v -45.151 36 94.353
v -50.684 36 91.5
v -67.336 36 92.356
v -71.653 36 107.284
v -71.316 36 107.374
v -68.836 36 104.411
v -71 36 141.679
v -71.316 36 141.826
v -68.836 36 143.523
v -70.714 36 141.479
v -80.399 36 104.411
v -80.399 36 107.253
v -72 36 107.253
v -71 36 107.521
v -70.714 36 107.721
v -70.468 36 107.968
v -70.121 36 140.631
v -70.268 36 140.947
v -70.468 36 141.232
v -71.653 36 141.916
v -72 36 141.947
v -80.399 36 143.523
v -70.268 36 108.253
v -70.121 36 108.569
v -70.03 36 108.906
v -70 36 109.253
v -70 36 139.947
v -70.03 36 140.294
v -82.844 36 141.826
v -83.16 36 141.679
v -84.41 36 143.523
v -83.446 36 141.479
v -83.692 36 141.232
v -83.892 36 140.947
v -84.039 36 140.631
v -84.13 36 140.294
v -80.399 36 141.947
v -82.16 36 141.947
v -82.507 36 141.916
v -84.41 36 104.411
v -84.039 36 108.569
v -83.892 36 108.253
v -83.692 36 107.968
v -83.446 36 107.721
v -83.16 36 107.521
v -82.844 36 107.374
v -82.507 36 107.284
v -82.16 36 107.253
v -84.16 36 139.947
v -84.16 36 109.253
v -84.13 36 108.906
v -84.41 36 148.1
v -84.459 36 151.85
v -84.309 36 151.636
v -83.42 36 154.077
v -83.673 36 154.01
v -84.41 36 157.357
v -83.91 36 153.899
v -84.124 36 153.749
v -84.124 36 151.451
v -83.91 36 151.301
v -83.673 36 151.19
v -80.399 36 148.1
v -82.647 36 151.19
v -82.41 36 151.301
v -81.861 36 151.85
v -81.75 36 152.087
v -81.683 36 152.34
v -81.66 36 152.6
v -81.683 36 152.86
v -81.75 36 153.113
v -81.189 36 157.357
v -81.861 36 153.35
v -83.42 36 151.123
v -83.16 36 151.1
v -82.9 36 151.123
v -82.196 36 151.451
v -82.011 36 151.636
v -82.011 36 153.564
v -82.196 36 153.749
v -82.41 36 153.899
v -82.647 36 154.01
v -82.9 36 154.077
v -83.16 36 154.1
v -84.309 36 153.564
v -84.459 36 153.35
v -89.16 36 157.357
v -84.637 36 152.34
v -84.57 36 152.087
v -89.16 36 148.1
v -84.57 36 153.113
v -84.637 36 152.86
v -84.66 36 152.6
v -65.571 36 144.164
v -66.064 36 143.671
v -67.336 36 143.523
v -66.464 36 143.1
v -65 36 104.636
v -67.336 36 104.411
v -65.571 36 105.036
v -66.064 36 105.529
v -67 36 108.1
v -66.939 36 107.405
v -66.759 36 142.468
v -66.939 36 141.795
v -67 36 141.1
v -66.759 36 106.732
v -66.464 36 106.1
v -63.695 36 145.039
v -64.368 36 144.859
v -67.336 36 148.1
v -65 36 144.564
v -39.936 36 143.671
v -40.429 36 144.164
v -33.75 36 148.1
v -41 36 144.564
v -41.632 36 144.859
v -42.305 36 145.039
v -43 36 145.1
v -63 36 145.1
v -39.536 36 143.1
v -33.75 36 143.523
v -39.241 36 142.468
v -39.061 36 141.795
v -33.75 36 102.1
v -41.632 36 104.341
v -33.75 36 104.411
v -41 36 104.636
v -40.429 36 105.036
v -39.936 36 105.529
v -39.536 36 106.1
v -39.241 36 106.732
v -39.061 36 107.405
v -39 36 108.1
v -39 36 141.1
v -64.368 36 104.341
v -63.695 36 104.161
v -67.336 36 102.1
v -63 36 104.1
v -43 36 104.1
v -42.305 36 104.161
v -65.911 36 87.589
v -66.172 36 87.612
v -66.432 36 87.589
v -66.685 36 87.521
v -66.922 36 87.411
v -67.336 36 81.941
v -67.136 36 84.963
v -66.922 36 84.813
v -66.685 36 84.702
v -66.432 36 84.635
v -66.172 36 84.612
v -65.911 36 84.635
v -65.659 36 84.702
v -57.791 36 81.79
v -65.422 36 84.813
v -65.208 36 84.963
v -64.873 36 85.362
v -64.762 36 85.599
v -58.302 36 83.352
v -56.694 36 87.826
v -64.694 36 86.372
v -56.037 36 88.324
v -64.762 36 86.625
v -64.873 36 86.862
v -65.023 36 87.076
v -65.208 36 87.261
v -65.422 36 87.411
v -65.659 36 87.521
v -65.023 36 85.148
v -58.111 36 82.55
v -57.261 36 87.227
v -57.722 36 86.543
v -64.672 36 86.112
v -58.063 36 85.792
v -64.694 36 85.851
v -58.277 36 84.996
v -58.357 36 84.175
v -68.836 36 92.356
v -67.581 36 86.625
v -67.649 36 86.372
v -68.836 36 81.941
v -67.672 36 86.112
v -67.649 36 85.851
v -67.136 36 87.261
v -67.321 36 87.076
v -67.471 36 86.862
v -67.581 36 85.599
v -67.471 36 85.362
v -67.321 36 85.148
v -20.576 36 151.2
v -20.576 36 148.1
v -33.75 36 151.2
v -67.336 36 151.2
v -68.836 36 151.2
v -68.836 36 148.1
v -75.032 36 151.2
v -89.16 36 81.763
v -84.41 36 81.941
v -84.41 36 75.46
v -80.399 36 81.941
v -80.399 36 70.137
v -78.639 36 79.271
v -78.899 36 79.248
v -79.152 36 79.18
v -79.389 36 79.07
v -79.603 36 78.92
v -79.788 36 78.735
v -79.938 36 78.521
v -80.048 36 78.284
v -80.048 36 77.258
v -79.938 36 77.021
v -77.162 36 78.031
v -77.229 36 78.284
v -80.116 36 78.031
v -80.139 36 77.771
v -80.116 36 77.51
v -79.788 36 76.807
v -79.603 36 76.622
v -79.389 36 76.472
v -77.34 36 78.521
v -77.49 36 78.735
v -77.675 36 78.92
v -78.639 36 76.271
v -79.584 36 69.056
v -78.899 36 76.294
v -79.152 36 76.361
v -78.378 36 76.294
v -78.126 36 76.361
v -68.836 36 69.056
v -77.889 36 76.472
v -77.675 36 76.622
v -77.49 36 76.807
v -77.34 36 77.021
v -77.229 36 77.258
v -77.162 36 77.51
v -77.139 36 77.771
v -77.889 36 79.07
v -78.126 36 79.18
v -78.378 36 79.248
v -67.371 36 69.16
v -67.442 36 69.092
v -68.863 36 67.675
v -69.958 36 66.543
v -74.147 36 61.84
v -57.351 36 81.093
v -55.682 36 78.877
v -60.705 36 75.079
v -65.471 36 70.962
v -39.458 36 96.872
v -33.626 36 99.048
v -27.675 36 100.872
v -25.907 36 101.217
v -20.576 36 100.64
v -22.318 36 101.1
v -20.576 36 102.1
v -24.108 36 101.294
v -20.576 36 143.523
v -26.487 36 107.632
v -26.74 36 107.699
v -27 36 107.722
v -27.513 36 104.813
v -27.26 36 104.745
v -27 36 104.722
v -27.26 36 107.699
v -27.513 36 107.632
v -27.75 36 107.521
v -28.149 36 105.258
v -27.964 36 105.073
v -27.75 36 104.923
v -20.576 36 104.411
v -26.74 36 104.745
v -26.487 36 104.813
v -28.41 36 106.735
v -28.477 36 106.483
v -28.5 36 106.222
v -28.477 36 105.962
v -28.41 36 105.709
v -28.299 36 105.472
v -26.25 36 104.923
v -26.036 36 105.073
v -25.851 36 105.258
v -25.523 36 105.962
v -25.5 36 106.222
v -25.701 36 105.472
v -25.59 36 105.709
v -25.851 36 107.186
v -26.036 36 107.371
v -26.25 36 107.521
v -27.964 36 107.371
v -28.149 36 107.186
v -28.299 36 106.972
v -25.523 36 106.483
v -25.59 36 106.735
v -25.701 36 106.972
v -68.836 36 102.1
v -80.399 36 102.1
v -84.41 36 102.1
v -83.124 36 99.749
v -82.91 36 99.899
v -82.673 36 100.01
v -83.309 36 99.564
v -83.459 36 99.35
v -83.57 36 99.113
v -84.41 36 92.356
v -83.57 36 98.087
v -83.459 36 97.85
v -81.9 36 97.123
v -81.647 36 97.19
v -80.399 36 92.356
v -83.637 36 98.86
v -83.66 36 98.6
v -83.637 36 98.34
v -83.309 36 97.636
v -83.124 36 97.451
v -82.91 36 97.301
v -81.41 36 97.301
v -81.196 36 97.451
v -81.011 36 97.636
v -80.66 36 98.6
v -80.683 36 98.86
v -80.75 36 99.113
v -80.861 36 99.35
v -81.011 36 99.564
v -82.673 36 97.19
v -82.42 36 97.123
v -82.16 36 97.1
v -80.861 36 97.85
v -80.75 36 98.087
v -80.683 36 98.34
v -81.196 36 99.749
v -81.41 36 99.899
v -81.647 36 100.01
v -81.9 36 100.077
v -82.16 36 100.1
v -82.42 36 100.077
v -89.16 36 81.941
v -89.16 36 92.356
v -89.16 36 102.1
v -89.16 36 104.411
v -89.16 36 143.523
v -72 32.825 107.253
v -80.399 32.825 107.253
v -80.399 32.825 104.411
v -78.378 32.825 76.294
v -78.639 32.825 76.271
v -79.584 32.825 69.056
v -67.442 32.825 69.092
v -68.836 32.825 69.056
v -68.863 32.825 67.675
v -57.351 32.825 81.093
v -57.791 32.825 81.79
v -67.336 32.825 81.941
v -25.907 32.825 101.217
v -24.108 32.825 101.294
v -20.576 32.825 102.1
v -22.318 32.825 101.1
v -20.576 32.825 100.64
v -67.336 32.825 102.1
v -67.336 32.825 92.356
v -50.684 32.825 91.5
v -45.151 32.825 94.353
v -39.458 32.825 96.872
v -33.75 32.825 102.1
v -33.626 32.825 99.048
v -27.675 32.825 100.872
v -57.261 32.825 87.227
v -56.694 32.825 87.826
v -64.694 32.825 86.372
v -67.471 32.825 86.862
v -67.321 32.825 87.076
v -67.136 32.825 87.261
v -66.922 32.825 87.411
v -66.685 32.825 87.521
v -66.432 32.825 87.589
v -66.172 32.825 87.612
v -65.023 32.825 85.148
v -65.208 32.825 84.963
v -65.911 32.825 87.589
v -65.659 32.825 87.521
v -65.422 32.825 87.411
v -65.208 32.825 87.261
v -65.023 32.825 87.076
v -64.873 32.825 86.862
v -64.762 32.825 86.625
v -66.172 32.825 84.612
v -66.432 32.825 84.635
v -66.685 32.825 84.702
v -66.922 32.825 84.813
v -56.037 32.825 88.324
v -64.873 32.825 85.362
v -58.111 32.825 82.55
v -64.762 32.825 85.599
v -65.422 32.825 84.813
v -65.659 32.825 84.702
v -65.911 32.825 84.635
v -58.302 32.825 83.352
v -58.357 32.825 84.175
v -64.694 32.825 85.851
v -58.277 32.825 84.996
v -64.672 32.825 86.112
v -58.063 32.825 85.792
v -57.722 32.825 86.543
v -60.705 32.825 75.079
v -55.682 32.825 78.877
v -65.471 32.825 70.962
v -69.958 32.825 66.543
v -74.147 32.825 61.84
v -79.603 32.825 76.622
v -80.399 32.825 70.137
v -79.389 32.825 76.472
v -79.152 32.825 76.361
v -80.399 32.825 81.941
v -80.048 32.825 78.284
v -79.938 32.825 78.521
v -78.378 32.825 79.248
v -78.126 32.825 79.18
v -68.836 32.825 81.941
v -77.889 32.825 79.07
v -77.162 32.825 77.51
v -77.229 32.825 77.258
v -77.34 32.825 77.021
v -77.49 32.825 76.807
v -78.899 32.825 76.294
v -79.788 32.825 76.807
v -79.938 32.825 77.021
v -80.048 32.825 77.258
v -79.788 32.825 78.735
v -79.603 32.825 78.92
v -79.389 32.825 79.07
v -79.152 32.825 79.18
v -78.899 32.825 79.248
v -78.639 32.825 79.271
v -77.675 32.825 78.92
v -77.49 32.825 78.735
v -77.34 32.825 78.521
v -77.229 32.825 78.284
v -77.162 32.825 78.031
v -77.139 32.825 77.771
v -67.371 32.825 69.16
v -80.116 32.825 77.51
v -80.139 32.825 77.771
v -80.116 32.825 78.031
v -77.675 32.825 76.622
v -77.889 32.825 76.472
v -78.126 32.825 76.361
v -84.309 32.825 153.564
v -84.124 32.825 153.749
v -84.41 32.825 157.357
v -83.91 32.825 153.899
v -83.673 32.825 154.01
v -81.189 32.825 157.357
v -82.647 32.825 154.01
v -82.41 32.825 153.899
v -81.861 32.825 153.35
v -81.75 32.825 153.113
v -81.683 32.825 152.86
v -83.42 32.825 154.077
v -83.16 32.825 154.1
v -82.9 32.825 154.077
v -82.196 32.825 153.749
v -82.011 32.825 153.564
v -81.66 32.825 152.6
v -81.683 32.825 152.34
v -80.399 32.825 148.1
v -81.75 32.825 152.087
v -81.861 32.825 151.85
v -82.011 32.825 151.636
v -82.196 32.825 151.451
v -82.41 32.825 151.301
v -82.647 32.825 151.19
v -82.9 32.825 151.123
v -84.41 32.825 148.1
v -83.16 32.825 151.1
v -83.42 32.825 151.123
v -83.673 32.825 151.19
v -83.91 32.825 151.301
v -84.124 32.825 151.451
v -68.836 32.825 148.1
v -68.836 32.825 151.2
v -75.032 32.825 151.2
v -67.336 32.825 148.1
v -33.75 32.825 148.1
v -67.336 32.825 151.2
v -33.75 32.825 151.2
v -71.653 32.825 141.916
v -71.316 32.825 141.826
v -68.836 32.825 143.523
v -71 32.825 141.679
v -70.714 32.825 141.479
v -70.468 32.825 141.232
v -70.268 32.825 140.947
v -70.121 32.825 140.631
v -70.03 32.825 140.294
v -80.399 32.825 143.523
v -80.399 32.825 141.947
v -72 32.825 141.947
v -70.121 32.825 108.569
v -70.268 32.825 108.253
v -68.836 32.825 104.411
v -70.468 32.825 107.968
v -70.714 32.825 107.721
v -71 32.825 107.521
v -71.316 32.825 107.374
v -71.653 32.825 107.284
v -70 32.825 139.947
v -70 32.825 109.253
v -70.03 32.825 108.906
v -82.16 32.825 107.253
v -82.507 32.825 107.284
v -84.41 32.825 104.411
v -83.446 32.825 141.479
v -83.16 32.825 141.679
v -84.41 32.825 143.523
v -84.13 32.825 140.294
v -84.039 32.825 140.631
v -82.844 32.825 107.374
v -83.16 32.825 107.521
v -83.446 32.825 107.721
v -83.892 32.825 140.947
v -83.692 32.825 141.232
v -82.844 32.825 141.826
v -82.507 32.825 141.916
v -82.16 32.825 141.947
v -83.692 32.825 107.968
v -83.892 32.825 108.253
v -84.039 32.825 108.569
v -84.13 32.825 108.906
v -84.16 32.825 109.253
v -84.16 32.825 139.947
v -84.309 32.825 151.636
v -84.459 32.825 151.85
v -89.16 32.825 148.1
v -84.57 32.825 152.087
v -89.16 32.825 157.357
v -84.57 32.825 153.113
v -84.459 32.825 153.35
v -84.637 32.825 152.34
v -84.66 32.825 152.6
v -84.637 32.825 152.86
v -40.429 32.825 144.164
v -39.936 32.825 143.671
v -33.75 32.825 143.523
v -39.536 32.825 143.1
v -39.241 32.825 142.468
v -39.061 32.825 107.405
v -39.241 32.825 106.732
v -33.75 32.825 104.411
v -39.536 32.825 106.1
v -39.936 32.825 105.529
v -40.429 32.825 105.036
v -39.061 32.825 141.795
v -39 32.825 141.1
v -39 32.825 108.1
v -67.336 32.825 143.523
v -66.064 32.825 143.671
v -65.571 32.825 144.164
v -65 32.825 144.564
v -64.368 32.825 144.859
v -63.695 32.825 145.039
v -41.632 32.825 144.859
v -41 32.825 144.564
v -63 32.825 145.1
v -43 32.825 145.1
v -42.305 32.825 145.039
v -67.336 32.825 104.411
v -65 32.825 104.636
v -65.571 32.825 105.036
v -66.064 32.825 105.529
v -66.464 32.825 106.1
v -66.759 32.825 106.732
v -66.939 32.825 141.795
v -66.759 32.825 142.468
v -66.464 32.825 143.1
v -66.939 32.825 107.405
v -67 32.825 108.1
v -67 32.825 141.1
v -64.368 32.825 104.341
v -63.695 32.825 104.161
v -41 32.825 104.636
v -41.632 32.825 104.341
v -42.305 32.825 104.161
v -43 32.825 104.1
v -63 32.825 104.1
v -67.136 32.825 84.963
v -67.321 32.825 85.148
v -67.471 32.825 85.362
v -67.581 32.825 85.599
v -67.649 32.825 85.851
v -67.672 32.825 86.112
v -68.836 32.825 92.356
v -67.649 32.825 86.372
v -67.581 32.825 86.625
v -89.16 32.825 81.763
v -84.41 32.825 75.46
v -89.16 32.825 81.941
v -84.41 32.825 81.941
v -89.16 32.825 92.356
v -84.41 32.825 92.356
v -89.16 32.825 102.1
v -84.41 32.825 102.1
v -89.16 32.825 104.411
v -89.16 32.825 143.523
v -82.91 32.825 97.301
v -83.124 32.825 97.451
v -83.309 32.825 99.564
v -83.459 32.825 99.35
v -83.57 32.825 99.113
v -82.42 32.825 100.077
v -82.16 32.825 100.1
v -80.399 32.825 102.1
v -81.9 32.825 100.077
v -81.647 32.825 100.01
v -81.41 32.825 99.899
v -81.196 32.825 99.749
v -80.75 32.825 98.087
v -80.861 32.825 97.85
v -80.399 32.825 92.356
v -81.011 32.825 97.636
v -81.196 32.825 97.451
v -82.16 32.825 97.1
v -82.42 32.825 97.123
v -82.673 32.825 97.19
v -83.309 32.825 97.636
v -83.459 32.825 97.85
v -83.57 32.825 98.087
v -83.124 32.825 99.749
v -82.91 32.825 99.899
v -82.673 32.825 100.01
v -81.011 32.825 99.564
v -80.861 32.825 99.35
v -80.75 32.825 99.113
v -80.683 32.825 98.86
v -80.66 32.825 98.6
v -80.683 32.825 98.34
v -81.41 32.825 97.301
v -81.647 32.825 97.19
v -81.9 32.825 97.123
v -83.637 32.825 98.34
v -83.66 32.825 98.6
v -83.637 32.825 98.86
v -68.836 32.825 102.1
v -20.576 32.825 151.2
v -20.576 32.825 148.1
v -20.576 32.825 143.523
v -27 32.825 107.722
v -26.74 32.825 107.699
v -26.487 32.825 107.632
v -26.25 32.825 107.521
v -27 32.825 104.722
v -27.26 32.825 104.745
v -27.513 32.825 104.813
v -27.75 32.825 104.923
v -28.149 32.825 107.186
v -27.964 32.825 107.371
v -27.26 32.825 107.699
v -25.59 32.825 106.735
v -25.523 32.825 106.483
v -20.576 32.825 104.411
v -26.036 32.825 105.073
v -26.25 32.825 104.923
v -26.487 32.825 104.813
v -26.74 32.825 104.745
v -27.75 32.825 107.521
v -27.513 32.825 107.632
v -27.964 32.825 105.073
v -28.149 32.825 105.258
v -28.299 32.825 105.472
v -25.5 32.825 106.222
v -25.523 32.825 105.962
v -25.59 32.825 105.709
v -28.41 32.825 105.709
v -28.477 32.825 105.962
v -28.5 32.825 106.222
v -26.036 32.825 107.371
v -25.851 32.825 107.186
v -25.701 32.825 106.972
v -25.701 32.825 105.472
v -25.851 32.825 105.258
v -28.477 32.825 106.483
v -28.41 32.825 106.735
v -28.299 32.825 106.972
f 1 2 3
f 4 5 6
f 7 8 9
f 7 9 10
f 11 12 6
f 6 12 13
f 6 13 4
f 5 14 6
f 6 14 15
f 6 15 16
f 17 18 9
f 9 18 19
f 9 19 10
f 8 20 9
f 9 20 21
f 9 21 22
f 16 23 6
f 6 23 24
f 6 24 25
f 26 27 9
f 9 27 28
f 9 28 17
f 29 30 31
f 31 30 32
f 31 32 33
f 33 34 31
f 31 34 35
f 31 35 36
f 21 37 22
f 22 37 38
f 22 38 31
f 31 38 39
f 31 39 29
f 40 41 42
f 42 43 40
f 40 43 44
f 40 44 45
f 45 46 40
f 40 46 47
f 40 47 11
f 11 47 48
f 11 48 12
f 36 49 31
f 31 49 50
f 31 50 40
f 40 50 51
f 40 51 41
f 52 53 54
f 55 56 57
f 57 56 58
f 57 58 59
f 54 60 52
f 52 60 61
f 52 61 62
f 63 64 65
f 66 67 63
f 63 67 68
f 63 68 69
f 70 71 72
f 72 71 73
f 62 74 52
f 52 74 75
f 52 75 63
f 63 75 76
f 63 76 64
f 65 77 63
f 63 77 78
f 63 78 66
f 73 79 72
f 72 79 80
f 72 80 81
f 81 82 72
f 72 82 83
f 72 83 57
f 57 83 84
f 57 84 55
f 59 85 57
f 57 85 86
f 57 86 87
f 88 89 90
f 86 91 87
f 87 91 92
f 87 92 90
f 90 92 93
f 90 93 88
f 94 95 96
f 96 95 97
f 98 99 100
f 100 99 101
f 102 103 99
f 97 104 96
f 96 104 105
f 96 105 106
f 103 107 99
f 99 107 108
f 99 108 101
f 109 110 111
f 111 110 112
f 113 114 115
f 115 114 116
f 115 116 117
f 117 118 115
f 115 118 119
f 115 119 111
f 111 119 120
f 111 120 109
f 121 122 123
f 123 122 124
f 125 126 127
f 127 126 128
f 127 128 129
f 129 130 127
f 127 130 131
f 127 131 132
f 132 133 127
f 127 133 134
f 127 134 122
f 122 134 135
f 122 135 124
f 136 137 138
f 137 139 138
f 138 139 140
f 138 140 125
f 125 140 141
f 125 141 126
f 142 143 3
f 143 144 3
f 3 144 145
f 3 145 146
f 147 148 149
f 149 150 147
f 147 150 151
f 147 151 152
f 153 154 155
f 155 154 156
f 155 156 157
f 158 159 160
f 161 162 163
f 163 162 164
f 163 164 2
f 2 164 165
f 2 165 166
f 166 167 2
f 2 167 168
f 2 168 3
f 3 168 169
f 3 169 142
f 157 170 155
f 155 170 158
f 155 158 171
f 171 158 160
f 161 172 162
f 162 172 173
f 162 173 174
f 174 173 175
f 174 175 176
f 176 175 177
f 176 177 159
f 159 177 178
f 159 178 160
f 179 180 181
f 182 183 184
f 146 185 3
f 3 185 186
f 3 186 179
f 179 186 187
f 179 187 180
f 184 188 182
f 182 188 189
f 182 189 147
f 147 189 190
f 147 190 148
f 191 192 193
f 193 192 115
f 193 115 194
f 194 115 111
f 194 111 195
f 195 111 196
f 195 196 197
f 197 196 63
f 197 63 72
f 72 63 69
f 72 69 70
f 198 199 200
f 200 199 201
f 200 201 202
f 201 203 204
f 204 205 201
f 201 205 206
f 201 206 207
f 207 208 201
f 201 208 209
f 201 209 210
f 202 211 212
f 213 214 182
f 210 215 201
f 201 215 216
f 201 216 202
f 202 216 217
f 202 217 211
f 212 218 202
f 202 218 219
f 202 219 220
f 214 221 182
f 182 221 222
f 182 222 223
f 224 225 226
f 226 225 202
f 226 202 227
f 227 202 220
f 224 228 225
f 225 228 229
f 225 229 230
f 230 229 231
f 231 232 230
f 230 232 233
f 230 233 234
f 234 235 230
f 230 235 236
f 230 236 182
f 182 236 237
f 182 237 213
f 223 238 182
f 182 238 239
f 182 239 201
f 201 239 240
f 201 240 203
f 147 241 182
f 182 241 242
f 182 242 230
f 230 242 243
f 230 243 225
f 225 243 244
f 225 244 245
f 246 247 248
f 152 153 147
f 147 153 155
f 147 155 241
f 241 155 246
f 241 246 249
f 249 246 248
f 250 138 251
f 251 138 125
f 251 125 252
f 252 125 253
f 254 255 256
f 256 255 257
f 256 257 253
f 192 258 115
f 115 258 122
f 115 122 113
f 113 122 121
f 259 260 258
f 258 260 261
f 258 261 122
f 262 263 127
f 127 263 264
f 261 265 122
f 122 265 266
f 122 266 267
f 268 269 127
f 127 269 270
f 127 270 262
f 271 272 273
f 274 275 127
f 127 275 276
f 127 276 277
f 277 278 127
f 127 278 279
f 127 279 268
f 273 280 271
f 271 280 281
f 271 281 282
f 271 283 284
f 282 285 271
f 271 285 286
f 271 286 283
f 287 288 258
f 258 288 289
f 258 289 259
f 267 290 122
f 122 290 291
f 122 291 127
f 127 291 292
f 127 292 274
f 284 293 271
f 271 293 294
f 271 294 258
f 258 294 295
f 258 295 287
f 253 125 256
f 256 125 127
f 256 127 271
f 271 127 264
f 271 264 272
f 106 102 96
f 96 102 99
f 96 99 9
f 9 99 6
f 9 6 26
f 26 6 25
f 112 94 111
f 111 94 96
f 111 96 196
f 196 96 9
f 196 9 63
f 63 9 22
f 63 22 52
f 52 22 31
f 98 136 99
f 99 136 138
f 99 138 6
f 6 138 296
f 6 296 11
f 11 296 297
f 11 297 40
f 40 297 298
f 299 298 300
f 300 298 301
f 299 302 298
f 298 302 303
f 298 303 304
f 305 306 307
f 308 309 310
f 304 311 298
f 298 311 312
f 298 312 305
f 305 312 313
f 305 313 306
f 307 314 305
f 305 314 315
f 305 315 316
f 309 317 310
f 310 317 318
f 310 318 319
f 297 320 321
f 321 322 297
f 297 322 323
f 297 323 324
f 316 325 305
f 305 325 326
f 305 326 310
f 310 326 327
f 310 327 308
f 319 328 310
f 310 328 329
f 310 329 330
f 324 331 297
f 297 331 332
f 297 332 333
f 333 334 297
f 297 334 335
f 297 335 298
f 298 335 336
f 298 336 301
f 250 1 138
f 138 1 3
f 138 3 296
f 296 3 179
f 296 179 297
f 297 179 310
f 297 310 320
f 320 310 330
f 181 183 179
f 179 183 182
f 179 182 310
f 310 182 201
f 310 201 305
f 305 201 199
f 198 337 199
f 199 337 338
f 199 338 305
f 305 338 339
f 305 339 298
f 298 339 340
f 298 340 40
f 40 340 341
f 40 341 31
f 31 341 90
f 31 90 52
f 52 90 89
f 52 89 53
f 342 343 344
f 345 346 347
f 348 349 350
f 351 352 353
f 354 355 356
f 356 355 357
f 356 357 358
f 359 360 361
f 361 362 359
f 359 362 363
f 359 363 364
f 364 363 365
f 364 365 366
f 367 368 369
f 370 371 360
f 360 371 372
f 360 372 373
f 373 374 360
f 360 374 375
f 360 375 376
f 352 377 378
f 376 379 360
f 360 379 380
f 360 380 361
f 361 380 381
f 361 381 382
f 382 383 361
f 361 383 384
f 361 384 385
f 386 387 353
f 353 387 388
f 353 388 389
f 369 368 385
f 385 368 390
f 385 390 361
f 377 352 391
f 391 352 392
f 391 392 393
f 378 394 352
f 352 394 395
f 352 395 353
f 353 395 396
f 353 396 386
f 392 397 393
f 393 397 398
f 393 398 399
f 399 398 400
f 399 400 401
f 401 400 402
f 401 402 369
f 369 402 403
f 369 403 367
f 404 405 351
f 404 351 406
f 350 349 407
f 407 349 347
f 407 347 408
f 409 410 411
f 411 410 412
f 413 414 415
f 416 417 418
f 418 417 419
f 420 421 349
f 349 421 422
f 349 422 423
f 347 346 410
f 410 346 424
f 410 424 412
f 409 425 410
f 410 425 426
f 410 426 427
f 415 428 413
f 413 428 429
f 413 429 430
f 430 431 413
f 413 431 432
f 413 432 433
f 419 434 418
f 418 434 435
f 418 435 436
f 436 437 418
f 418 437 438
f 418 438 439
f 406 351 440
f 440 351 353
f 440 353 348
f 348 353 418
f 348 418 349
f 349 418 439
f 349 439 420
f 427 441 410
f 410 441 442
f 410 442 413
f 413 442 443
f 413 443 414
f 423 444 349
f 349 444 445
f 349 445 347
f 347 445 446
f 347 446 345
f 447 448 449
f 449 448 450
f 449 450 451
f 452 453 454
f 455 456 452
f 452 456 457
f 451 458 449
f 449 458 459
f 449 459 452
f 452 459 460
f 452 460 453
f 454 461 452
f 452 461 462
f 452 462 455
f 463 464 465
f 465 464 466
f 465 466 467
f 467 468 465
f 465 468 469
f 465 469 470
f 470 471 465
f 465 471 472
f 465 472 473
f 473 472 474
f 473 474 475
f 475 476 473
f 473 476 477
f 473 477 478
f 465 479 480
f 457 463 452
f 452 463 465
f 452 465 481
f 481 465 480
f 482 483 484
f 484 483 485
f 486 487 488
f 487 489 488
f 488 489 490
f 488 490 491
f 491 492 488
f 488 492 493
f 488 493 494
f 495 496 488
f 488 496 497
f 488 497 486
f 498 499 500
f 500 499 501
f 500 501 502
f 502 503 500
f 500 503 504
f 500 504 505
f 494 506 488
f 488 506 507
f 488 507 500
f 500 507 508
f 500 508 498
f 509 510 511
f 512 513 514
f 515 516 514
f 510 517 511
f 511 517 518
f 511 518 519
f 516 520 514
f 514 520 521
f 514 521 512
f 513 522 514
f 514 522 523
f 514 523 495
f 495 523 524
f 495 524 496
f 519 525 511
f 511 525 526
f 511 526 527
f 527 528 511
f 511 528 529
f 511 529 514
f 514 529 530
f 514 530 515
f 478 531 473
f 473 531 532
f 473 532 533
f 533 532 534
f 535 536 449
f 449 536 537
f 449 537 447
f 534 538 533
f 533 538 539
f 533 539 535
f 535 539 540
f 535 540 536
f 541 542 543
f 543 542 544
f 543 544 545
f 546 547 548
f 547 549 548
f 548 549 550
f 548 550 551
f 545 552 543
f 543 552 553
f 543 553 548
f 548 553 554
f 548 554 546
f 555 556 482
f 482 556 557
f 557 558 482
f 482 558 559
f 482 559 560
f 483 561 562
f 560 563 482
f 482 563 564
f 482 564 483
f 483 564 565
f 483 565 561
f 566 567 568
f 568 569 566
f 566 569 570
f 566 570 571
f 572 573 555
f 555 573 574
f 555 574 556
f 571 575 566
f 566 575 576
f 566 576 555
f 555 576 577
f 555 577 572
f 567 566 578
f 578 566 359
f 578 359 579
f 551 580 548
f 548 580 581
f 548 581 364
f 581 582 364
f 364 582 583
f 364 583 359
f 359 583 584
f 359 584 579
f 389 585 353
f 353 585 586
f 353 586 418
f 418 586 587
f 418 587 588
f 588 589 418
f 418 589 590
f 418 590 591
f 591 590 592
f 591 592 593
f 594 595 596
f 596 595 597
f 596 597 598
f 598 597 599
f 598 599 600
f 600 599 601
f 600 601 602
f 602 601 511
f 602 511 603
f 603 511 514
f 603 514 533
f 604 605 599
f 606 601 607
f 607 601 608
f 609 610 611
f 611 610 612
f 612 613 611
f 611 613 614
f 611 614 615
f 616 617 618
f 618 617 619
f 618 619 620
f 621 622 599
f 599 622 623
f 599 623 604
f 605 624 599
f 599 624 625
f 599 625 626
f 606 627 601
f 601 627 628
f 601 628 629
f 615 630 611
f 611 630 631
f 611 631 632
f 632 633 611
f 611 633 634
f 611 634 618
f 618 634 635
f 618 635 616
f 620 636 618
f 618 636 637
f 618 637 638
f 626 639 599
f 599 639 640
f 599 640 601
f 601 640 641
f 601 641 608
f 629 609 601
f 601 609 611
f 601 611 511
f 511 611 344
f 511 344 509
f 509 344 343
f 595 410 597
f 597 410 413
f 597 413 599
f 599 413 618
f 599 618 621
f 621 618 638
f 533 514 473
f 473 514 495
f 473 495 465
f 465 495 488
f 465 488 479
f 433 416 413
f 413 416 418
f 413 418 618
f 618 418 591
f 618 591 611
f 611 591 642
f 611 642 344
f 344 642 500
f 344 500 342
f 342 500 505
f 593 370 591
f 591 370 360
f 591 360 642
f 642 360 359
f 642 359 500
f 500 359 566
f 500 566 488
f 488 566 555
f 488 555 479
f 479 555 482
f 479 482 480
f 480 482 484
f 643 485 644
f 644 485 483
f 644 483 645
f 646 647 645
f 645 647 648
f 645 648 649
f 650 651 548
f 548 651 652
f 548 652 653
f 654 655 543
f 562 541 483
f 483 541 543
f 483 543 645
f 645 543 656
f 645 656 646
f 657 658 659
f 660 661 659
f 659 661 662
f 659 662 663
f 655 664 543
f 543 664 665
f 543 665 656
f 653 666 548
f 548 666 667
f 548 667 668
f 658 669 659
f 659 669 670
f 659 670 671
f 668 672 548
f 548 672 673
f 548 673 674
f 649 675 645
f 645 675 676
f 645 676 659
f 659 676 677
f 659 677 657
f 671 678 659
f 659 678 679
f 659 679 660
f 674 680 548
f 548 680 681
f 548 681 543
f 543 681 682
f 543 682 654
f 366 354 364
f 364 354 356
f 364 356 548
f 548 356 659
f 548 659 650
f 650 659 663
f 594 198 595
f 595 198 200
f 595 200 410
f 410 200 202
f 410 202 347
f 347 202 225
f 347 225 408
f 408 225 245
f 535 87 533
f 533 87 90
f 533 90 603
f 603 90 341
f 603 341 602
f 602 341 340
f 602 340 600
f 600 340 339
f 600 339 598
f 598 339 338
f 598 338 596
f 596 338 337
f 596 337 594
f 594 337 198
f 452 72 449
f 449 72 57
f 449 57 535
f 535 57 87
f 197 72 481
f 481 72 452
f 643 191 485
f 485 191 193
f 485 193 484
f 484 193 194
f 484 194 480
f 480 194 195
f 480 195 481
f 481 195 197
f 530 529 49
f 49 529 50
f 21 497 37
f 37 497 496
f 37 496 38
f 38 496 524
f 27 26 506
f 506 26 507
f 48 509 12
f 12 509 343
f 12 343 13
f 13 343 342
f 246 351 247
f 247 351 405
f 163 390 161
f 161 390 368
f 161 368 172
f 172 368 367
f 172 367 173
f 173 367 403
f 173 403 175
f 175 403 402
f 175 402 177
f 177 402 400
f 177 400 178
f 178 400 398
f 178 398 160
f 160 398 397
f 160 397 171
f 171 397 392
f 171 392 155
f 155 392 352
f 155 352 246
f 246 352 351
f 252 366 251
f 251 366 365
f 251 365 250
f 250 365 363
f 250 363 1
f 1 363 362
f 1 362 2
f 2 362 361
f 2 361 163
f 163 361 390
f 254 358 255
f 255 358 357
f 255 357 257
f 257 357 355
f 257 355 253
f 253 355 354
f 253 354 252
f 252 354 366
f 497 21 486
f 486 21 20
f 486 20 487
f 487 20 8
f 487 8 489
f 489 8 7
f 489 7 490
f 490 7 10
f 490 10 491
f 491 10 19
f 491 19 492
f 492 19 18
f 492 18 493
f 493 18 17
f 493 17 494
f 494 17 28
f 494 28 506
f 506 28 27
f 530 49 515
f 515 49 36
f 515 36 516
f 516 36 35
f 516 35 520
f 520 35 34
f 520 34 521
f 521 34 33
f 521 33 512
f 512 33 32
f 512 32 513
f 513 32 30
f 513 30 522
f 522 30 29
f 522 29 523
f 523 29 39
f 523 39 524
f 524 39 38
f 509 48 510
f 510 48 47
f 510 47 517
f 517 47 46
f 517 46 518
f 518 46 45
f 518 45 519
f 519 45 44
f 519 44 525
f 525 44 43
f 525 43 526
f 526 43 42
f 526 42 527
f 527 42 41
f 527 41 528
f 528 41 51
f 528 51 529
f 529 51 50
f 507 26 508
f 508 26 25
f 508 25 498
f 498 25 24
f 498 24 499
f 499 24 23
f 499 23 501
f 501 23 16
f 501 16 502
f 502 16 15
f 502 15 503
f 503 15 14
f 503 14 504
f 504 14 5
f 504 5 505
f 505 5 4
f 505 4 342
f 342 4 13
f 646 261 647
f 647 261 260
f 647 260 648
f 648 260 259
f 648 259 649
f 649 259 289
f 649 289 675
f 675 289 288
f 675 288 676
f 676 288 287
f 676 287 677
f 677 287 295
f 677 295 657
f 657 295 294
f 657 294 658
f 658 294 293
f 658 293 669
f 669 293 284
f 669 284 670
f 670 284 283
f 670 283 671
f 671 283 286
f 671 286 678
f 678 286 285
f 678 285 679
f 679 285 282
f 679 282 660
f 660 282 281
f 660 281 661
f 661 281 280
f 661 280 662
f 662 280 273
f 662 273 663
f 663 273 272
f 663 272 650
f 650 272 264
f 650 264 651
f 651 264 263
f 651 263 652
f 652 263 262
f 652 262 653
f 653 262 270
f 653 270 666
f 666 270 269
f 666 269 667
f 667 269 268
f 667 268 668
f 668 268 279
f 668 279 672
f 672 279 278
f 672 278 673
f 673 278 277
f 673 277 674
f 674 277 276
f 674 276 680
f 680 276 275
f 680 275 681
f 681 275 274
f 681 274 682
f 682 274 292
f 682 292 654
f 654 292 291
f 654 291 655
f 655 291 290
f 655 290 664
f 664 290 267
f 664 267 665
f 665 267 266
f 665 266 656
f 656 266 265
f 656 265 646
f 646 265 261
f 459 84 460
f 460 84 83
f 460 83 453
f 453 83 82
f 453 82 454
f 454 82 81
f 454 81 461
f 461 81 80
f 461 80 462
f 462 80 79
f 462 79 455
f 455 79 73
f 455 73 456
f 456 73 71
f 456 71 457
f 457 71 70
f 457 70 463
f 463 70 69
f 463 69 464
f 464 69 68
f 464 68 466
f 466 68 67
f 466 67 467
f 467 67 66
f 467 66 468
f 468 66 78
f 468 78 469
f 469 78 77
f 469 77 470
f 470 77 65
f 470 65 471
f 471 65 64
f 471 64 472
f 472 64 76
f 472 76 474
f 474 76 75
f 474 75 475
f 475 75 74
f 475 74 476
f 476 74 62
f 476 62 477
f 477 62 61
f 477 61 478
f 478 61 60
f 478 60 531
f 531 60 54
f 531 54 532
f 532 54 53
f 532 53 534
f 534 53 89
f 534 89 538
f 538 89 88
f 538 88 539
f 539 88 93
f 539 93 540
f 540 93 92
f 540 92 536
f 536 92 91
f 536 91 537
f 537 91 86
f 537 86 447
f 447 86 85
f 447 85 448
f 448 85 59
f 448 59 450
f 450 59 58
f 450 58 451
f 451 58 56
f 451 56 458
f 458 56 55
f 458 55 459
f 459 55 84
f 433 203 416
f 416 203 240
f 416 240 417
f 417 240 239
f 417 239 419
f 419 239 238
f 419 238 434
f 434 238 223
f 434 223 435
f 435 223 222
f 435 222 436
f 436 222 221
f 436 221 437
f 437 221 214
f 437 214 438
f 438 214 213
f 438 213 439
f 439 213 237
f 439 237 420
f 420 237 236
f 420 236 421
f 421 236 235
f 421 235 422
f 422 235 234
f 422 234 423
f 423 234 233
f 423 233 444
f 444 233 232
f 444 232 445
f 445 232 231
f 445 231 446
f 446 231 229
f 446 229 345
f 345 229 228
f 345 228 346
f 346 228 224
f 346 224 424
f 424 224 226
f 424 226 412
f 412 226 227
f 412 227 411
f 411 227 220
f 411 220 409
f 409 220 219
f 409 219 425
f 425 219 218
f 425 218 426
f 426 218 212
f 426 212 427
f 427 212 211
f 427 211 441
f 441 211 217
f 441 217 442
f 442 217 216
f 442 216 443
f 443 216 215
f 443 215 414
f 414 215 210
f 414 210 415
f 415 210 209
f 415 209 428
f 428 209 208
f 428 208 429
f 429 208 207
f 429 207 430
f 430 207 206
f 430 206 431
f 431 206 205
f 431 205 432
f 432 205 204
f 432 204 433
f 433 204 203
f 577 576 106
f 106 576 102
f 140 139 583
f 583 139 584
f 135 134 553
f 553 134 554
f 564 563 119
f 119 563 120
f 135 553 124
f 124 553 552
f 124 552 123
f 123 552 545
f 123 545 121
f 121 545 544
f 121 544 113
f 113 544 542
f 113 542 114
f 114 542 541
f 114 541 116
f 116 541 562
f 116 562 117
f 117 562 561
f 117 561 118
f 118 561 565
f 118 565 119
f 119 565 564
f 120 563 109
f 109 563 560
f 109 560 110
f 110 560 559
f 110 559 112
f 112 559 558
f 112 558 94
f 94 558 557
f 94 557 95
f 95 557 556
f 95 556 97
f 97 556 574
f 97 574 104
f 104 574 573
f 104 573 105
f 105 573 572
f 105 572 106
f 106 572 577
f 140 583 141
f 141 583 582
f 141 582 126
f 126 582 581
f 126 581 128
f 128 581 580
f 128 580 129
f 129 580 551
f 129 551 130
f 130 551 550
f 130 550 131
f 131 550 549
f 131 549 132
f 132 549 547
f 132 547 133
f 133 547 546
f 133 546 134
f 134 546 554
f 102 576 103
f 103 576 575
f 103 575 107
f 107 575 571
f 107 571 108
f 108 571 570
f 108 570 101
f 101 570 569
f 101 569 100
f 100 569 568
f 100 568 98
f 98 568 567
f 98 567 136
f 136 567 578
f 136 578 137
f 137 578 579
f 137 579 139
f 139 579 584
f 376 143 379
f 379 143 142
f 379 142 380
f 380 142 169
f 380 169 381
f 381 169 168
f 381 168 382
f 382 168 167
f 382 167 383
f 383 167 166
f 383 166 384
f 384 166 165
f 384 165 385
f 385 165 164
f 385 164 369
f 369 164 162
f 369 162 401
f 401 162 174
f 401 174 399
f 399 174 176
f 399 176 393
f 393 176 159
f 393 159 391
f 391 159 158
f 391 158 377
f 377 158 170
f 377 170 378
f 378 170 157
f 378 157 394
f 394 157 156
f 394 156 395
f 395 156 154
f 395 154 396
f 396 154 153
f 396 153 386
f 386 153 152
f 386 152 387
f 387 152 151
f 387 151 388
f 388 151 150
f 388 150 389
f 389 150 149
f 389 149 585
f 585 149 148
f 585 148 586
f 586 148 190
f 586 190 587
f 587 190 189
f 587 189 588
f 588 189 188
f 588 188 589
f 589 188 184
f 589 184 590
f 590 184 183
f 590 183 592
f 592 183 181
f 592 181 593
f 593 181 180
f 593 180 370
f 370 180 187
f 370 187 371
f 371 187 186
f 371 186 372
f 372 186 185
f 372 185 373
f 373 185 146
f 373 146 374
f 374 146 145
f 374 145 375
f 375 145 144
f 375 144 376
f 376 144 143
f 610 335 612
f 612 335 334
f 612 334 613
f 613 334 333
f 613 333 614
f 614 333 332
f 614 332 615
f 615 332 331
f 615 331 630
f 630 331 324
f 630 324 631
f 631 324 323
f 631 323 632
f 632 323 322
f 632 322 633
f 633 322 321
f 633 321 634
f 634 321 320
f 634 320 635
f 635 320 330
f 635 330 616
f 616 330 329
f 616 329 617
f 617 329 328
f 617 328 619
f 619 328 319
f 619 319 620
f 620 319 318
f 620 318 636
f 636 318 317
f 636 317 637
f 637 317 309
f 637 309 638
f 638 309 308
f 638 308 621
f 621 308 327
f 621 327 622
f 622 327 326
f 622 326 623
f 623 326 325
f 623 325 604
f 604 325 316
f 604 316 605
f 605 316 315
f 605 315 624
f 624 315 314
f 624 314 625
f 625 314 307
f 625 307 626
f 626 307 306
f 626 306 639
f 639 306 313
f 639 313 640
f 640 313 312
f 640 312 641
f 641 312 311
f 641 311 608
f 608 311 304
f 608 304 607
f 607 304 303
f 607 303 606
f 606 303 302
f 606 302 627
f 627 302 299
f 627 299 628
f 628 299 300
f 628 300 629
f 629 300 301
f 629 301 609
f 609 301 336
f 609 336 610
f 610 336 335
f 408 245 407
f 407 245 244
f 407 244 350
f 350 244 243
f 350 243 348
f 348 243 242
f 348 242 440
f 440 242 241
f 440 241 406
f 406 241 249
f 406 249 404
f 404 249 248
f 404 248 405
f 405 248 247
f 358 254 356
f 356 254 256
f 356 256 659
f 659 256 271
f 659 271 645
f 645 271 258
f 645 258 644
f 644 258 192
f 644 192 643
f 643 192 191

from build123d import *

# Parameters (mm, degrees)
SKETCH1_R                    = 7
SKETCH1_R_2                  = 3.9
SKETCH1_R_3                  = 1.3
SKETCH1_W                    = 14.16
SKETCH1_H                    = 34.693281024
BOSS_EXTRUDE1_DEPTH          = 3.175
FILLET1_R                    = 2
SKETCH2_R                    = 1.5
CUT_EXTRUDE1_DEPTH           = 4.175
SKETCH5_W                    = 28
SKETCH5_H                    = 41
CUT_EXTRUDE3_DEPTH           = 4.175
FILLET2_R                    = 4
SKETCH10_R                   = 1.5
NOSE_GUARD_SCREW_HOLES_DEPTH = 4.175
SKETCH11_R                   = 20
CUT_EXTRUDE4_DEPTH           = 4.175
SKETCH12_R                   = 1.5
CUT_EXTRUDE5_DEPTH           = 4.175
SKETCH13_R                   = 96.550525729
CUT_EXTRUDE6_DEPTH           = 4.175
SKETCH14_W                   = 292.522671741
SKETCH14_H                   = 256.088396318
CUT_EXTRUDE7_DEPTH           = 4.175


with BuildPart() as part:
    # Sketch1 → Boss-Extrude1 (new body)
    with BuildSketch(Plane(origin=(0, 32.825, 0), x_dir=(1, 0, 0), z_dir=(0, 1, 0))):
        with BuildLine():
            Line((89.16, -81.763233191), (17.569981221, 13.239930509))
            ThreePointArc((17.569981221, 13.239930509), (0, 22), (-17.569981221, 13.239930509))
            Line((-17.569981221, 13.239930509), (-89.16, -81.763233191))
            Line((-89.16, -81.763233191), (-89.16, -157.357359313))
            Line((-89.16, -157.357359313), (-81.189437252, -157.357359313))
            Line((-81.189437252, -157.357359313), (-75.032077939, -151.2))
            Line((-75.032077939, -151.2), (75.032077939, -151.2))
            Line((75.032077939, -151.2), (81.189437252, -157.357359313))
            Line((81.189437252, -157.357359313), (89.16, -157.357359313))
            Line((89.16, -157.357359313), (89.16, -81.763233191))
        make_face()
        with Locations((0, -124.6)):
            Circle(SKETCH1_R, mode=Mode.SUBTRACT)
        Circle(SKETCH1_R_2, mode=Mode.SUBTRACT)
        with Locations((0, -28)):
            Circle(SKETCH1_R_3, mode=Mode.SUBTRACT)
        with Locations((-77.08, -124.6)):
            Rectangle(SKETCH1_W, SKETCH1_H, mode=Mode.SUBTRACT)
        with Locations((77.08, -124.6)):
            Rectangle(SKETCH1_W, SKETCH1_H, mode=Mode.SUBTRACT)
        with BuildLine():
            Line((-21.49317755, -33.507330392), (-57.351202685, -81.09253696))
            ThreePointArc((-57.351202685, -81.09253696), (-58.277395442, -84.995925096), (-56.036640854, -88.323580553))
            ThreePointArc((-56.036640854, -88.323580553), (-42.323470644, -95.65502513), (-27.674946004, -100.872480705))
            ThreePointArc((-27.674946004, -100.872480705), (-17.223302674, -98.842107372), (-12.5, -89.300111982))
            Line((-12.5, -89.300111982), (-12.5, -36.516405507))
            ThreePointArc((-12.5, -36.516405507), (-15.913476718, -31.774787231), (-21.49317755, -33.507330392))
        make_face(mode=Mode.SUBTRACT)
        with BuildLine():
            Line((57.351202685, -81.09253696), (21.49317755, -33.507330392))
            ThreePointArc((21.49317755, -33.507330392), (15.913476718, -31.774787231), (12.5, -36.516405507))
            Line((12.5, -36.516405507), (12.5, -89.300111982))
            ThreePointArc((12.5, -89.300111982), (17.223302674, -98.842107372), (27.674946004, -100.872480705))
            ThreePointArc((27.674946004, -100.872480705), (42.323470644, -95.65502513), (56.036640854, -88.323580553))
            ThreePointArc((56.036640854, -88.323580553), (58.277395442, -84.995925096), (57.351202685, -81.09253696))
        make_face(mode=Mode.SUBTRACT)
    extrude(amount=BOSS_EXTRUDE1_DEPTH)

    # Fillet1
    fillet1_edges = [part.edges().sort_by_distance(p)[0] for p in [
        (-84.16, 34.4125, 107.253359488),
        (-84.16, 34.4125, 141.946640512),
        (-70, 34.4125, 141.946640512),
        (-70, 34.4125, 107.253359488),
        (84.16, 34.4125, 107.253359488),
        (70, 34.4125, 107.253359488),
        (70, 34.4125, 141.946640512),
        (84.16, 34.4125, 141.946640512),
    ]]
    fillet(fillet1_edges, radius=FILLET1_R)

    # Sketch2 → Cut-Extrude1 (cut, through all)
    with BuildSketch(Plane(origin=(0, 36, 0), x_dir=(1, 0, 0), z_dir=(0, 1, 0))):
        with Locations((-62.088932188, -184.6)):
            Circle(SKETCH2_R)
        with Locations((-27, -106.222219898)):
            Circle(SKETCH2_R)
        with Locations((-83.16, -152.6)):
            Circle(SKETCH2_R)
        with Locations((-78.638732223, -77.770880118)):
            Circle(SKETCH2_R)
        with Locations((27, -106.222219898)):
            Circle(SKETCH2_R)
        with Locations((62.088932188, -184.6)):
            Circle(SKETCH2_R)
        with Locations((83.16, -162.114718626)):
            Circle(SKETCH2_R)
        with Locations((78.638732223, -77.770880118)):
            Circle(SKETCH2_R)
        with Locations((83.16, -152.6)):
            Circle(SKETCH2_R)
        with Locations((-83.16, -162.114718626)):
            Circle(SKETCH2_R)
    extrude(amount=-CUT_EXTRUDE1_DEPTH, mode=Mode.SUBTRACT)

    # Sketch5 → Cut-Extrude3 (cut, through all)
    with BuildSketch(Plane(origin=(0, 36, 0), x_dir=(1, 0, 0), z_dir=(0, 1, 0))):
        with Locations((-53, -124.6)):
            Rectangle(SKETCH5_W, SKETCH5_H)
        with Locations((53, -124.6)):
            Rectangle(SKETCH5_W, SKETCH5_H)
    extrude(amount=-CUT_EXTRUDE3_DEPTH, mode=Mode.SUBTRACT)

    # Fillet2
    fillet2_edges = [part.edges().sort_by_distance(p)[0] for p in [
        (-67, 34.4125, 145.1),
        (-67, 34.4125, 104.1),
        (-39, 34.4125, 104.1),
        (-39, 34.4125, 145.1),
        (67, 34.4125, 104.1),
        (67, 34.4125, 145.1),
        (39, 34.4125, 145.1),
        (39, 34.4125, 104.1),
    ]]
    fillet(fillet2_edges, radius=FILLET2_R)

    # Sketch10 → nose-guard-screw-holes (cut, through all)
    with BuildSketch(Plane(origin=(0, 36, 0), x_dir=(1, 0, 0), z_dir=(0, 1, 0))):
        with Locations((0, 17)):
            Circle(SKETCH10_R)
        with Locations((-14.722431864, 8.5)):
            Circle(SKETCH10_R)
        with Locations((14.722431864, 8.5)):
            Circle(SKETCH10_R)
        with Locations((0, -44.25832974)):
            Circle(SKETCH10_R)
        with Locations((0, -67.77856843)):
            Circle(SKETCH10_R)
        with Locations((0, -91.29880712)):
            Circle(SKETCH10_R)
    extrude(amount=-NOSE_GUARD_SCREW_HOLES_DEPTH, mode=Mode.SUBTRACT)

    # Sketch11 → Cut-Extrude4 (cut, through all)
    with BuildSketch(Plane(origin=(0, 36, 0), x_dir=(1, 0, 0), z_dir=(0, 1, 0))):
        with Locations((0, -124.6)):
            Circle(SKETCH11_R)
    extrude(amount=-CUT_EXTRUDE4_DEPTH, mode=Mode.SUBTRACT)

    # Sketch12 → Cut-Extrude5 (cut, through all)
    with BuildSketch(Plane(origin=(0, 36, 0), x_dir=(1, 0, 0), z_dir=(0, 1, 0))):
        with Locations((-82.16, -98.6)):
            Circle(SKETCH12_R)
        with Locations((66.171704332, -86.11193614)):
            Circle(SKETCH12_R)
        with Locations((82.16, -98.6)):
            Circle(SKETCH12_R)
        with Locations((-66.171704332, -86.11193614)):
            Circle(SKETCH12_R)
    extrude(amount=-CUT_EXTRUDE5_DEPTH, mode=Mode.SUBTRACT)

    # Sketch13 → Cut-Extrude6 (cut, through all)
    with BuildSketch(Plane(origin=(0, 36, 0), x_dir=(1, 0, 0), z_dir=(0, 1, 0))):
        Circle(SKETCH13_R)
    extrude(amount=-CUT_EXTRUDE6_DEPTH, mode=Mode.SUBTRACT)

    # Sketch14 → Cut-Extrude7 (cut, through all)
    with BuildSketch(Plane(origin=(0, 36, 0), x_dir=(1, 0, 0), z_dir=(0, 1, 0))):
        with Locations((125.685144355, -44.004038114)):
            Rectangle(SKETCH14_W, SKETCH14_H)
    extrude(amount=-CUT_EXTRUDE7_DEPTH, mode=Mode.SUBTRACT)


solid = part.part
